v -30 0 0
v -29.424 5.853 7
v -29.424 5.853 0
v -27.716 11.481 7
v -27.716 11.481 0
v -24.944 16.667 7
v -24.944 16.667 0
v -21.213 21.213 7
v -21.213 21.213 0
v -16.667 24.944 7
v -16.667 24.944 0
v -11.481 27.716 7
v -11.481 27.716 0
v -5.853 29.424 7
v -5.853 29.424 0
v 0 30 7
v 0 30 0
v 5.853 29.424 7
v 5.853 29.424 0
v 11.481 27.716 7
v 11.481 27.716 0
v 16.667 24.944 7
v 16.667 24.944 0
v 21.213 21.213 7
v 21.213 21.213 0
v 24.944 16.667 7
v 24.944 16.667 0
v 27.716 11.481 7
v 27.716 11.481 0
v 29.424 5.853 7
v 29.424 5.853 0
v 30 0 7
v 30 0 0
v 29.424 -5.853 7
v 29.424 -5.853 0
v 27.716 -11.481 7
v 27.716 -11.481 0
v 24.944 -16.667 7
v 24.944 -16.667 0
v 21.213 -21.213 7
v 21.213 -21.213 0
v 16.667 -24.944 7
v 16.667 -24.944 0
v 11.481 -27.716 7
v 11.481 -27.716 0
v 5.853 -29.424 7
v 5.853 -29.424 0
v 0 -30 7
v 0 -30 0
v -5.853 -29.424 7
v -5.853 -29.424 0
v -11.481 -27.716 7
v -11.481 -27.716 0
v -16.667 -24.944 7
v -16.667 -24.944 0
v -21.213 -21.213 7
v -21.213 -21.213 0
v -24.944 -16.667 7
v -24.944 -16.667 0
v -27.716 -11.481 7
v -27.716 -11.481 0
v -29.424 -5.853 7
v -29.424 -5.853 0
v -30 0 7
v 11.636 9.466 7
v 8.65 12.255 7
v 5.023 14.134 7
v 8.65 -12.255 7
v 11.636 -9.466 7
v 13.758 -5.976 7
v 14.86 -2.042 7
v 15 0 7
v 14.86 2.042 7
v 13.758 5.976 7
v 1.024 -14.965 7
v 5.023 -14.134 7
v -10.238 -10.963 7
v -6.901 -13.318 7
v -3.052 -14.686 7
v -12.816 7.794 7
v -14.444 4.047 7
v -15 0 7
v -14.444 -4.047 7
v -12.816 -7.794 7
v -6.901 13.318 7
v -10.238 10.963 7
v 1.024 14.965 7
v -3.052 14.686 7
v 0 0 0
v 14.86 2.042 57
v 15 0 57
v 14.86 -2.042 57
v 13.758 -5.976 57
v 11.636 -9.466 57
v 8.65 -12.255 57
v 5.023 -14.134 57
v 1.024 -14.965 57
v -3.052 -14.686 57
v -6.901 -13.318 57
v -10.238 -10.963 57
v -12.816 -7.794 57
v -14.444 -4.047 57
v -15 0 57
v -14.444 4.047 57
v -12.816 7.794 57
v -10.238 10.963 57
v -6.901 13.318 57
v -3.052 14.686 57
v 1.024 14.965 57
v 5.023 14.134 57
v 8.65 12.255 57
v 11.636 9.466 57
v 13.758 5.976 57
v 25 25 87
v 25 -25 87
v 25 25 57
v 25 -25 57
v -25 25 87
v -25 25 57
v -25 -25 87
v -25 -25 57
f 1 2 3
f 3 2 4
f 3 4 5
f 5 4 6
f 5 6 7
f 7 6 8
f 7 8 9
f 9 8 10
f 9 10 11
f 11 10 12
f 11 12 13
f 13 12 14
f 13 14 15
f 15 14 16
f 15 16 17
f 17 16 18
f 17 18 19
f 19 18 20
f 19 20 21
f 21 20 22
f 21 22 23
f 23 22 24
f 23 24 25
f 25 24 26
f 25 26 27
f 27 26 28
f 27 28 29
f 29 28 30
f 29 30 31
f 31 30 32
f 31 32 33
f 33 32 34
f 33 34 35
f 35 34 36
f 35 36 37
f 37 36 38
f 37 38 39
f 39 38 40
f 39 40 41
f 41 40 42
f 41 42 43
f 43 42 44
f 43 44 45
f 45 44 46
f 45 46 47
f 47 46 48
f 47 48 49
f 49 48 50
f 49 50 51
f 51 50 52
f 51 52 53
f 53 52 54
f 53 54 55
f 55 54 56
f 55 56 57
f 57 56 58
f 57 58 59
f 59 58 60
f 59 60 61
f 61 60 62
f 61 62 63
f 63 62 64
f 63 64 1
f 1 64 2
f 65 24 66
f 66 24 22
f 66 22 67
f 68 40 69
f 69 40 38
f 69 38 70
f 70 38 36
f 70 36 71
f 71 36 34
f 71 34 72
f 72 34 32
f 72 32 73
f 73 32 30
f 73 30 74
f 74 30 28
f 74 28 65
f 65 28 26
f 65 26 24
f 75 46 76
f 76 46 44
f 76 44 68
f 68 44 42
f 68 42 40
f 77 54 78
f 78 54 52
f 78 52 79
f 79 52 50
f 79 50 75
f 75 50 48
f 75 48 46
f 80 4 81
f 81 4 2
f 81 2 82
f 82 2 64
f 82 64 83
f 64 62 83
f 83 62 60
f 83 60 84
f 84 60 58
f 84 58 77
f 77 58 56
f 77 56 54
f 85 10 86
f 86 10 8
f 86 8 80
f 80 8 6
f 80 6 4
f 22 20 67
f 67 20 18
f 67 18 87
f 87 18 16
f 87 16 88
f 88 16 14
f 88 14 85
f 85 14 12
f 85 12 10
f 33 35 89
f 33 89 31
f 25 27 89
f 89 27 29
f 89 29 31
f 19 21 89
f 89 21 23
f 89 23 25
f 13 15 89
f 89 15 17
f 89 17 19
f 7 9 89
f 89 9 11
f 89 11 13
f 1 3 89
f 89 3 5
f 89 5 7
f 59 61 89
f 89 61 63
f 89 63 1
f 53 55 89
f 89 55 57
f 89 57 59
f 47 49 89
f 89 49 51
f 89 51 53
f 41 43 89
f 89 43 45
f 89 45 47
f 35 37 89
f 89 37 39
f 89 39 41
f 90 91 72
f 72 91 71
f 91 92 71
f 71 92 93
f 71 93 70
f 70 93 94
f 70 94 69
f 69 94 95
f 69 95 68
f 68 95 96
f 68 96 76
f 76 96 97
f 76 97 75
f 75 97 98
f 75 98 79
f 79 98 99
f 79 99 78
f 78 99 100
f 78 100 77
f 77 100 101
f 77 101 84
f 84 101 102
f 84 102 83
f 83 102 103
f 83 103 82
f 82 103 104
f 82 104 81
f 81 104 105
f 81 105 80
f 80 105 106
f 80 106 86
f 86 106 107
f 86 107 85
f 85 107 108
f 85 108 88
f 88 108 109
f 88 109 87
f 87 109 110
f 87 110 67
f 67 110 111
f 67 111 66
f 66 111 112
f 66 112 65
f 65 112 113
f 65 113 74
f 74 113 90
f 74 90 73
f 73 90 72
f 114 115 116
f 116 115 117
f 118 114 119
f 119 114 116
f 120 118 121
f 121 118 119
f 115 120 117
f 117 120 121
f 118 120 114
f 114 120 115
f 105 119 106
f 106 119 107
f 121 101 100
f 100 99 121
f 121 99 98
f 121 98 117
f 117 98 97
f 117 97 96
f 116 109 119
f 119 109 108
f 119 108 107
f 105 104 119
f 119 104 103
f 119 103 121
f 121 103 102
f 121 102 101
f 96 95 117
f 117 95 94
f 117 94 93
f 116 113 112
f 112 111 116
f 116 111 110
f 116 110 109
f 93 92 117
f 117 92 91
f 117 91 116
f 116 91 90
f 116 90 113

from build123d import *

# Parameters (mm, degrees)
SKETCH_1_R      = 30
EXTRUDE_1_DEPTH = 7
SKETCH_2_R      = 15
EXTRUDE_2_DEPTH = 50
SKETCH_3_W      = 50
SKETCH_3_H      = 50
EXTRUDE_3_DEPTH = 30


with BuildPart() as part:
    # 스케치1 → 보스-돌출1 (new body)
    with BuildSketch(Plane.XY):
        Circle(SKETCH_1_R)
    extrude(amount=EXTRUDE_1_DEPTH)

    # 스케치2 → 보스-돌출2 (add)
    with BuildSketch(Plane.XY.offset(7)):
        Circle(SKETCH_2_R)
    extrude(amount=EXTRUDE_2_DEPTH)

    # 스케치3 → 보스-돌출3 (add)
    with BuildSketch(Plane.XY.offset(57)):
        Rectangle(SKETCH_3_W, SKETCH_3_H)
    extrude(amount=EXTRUDE_3_DEPTH)


solid = part.part
